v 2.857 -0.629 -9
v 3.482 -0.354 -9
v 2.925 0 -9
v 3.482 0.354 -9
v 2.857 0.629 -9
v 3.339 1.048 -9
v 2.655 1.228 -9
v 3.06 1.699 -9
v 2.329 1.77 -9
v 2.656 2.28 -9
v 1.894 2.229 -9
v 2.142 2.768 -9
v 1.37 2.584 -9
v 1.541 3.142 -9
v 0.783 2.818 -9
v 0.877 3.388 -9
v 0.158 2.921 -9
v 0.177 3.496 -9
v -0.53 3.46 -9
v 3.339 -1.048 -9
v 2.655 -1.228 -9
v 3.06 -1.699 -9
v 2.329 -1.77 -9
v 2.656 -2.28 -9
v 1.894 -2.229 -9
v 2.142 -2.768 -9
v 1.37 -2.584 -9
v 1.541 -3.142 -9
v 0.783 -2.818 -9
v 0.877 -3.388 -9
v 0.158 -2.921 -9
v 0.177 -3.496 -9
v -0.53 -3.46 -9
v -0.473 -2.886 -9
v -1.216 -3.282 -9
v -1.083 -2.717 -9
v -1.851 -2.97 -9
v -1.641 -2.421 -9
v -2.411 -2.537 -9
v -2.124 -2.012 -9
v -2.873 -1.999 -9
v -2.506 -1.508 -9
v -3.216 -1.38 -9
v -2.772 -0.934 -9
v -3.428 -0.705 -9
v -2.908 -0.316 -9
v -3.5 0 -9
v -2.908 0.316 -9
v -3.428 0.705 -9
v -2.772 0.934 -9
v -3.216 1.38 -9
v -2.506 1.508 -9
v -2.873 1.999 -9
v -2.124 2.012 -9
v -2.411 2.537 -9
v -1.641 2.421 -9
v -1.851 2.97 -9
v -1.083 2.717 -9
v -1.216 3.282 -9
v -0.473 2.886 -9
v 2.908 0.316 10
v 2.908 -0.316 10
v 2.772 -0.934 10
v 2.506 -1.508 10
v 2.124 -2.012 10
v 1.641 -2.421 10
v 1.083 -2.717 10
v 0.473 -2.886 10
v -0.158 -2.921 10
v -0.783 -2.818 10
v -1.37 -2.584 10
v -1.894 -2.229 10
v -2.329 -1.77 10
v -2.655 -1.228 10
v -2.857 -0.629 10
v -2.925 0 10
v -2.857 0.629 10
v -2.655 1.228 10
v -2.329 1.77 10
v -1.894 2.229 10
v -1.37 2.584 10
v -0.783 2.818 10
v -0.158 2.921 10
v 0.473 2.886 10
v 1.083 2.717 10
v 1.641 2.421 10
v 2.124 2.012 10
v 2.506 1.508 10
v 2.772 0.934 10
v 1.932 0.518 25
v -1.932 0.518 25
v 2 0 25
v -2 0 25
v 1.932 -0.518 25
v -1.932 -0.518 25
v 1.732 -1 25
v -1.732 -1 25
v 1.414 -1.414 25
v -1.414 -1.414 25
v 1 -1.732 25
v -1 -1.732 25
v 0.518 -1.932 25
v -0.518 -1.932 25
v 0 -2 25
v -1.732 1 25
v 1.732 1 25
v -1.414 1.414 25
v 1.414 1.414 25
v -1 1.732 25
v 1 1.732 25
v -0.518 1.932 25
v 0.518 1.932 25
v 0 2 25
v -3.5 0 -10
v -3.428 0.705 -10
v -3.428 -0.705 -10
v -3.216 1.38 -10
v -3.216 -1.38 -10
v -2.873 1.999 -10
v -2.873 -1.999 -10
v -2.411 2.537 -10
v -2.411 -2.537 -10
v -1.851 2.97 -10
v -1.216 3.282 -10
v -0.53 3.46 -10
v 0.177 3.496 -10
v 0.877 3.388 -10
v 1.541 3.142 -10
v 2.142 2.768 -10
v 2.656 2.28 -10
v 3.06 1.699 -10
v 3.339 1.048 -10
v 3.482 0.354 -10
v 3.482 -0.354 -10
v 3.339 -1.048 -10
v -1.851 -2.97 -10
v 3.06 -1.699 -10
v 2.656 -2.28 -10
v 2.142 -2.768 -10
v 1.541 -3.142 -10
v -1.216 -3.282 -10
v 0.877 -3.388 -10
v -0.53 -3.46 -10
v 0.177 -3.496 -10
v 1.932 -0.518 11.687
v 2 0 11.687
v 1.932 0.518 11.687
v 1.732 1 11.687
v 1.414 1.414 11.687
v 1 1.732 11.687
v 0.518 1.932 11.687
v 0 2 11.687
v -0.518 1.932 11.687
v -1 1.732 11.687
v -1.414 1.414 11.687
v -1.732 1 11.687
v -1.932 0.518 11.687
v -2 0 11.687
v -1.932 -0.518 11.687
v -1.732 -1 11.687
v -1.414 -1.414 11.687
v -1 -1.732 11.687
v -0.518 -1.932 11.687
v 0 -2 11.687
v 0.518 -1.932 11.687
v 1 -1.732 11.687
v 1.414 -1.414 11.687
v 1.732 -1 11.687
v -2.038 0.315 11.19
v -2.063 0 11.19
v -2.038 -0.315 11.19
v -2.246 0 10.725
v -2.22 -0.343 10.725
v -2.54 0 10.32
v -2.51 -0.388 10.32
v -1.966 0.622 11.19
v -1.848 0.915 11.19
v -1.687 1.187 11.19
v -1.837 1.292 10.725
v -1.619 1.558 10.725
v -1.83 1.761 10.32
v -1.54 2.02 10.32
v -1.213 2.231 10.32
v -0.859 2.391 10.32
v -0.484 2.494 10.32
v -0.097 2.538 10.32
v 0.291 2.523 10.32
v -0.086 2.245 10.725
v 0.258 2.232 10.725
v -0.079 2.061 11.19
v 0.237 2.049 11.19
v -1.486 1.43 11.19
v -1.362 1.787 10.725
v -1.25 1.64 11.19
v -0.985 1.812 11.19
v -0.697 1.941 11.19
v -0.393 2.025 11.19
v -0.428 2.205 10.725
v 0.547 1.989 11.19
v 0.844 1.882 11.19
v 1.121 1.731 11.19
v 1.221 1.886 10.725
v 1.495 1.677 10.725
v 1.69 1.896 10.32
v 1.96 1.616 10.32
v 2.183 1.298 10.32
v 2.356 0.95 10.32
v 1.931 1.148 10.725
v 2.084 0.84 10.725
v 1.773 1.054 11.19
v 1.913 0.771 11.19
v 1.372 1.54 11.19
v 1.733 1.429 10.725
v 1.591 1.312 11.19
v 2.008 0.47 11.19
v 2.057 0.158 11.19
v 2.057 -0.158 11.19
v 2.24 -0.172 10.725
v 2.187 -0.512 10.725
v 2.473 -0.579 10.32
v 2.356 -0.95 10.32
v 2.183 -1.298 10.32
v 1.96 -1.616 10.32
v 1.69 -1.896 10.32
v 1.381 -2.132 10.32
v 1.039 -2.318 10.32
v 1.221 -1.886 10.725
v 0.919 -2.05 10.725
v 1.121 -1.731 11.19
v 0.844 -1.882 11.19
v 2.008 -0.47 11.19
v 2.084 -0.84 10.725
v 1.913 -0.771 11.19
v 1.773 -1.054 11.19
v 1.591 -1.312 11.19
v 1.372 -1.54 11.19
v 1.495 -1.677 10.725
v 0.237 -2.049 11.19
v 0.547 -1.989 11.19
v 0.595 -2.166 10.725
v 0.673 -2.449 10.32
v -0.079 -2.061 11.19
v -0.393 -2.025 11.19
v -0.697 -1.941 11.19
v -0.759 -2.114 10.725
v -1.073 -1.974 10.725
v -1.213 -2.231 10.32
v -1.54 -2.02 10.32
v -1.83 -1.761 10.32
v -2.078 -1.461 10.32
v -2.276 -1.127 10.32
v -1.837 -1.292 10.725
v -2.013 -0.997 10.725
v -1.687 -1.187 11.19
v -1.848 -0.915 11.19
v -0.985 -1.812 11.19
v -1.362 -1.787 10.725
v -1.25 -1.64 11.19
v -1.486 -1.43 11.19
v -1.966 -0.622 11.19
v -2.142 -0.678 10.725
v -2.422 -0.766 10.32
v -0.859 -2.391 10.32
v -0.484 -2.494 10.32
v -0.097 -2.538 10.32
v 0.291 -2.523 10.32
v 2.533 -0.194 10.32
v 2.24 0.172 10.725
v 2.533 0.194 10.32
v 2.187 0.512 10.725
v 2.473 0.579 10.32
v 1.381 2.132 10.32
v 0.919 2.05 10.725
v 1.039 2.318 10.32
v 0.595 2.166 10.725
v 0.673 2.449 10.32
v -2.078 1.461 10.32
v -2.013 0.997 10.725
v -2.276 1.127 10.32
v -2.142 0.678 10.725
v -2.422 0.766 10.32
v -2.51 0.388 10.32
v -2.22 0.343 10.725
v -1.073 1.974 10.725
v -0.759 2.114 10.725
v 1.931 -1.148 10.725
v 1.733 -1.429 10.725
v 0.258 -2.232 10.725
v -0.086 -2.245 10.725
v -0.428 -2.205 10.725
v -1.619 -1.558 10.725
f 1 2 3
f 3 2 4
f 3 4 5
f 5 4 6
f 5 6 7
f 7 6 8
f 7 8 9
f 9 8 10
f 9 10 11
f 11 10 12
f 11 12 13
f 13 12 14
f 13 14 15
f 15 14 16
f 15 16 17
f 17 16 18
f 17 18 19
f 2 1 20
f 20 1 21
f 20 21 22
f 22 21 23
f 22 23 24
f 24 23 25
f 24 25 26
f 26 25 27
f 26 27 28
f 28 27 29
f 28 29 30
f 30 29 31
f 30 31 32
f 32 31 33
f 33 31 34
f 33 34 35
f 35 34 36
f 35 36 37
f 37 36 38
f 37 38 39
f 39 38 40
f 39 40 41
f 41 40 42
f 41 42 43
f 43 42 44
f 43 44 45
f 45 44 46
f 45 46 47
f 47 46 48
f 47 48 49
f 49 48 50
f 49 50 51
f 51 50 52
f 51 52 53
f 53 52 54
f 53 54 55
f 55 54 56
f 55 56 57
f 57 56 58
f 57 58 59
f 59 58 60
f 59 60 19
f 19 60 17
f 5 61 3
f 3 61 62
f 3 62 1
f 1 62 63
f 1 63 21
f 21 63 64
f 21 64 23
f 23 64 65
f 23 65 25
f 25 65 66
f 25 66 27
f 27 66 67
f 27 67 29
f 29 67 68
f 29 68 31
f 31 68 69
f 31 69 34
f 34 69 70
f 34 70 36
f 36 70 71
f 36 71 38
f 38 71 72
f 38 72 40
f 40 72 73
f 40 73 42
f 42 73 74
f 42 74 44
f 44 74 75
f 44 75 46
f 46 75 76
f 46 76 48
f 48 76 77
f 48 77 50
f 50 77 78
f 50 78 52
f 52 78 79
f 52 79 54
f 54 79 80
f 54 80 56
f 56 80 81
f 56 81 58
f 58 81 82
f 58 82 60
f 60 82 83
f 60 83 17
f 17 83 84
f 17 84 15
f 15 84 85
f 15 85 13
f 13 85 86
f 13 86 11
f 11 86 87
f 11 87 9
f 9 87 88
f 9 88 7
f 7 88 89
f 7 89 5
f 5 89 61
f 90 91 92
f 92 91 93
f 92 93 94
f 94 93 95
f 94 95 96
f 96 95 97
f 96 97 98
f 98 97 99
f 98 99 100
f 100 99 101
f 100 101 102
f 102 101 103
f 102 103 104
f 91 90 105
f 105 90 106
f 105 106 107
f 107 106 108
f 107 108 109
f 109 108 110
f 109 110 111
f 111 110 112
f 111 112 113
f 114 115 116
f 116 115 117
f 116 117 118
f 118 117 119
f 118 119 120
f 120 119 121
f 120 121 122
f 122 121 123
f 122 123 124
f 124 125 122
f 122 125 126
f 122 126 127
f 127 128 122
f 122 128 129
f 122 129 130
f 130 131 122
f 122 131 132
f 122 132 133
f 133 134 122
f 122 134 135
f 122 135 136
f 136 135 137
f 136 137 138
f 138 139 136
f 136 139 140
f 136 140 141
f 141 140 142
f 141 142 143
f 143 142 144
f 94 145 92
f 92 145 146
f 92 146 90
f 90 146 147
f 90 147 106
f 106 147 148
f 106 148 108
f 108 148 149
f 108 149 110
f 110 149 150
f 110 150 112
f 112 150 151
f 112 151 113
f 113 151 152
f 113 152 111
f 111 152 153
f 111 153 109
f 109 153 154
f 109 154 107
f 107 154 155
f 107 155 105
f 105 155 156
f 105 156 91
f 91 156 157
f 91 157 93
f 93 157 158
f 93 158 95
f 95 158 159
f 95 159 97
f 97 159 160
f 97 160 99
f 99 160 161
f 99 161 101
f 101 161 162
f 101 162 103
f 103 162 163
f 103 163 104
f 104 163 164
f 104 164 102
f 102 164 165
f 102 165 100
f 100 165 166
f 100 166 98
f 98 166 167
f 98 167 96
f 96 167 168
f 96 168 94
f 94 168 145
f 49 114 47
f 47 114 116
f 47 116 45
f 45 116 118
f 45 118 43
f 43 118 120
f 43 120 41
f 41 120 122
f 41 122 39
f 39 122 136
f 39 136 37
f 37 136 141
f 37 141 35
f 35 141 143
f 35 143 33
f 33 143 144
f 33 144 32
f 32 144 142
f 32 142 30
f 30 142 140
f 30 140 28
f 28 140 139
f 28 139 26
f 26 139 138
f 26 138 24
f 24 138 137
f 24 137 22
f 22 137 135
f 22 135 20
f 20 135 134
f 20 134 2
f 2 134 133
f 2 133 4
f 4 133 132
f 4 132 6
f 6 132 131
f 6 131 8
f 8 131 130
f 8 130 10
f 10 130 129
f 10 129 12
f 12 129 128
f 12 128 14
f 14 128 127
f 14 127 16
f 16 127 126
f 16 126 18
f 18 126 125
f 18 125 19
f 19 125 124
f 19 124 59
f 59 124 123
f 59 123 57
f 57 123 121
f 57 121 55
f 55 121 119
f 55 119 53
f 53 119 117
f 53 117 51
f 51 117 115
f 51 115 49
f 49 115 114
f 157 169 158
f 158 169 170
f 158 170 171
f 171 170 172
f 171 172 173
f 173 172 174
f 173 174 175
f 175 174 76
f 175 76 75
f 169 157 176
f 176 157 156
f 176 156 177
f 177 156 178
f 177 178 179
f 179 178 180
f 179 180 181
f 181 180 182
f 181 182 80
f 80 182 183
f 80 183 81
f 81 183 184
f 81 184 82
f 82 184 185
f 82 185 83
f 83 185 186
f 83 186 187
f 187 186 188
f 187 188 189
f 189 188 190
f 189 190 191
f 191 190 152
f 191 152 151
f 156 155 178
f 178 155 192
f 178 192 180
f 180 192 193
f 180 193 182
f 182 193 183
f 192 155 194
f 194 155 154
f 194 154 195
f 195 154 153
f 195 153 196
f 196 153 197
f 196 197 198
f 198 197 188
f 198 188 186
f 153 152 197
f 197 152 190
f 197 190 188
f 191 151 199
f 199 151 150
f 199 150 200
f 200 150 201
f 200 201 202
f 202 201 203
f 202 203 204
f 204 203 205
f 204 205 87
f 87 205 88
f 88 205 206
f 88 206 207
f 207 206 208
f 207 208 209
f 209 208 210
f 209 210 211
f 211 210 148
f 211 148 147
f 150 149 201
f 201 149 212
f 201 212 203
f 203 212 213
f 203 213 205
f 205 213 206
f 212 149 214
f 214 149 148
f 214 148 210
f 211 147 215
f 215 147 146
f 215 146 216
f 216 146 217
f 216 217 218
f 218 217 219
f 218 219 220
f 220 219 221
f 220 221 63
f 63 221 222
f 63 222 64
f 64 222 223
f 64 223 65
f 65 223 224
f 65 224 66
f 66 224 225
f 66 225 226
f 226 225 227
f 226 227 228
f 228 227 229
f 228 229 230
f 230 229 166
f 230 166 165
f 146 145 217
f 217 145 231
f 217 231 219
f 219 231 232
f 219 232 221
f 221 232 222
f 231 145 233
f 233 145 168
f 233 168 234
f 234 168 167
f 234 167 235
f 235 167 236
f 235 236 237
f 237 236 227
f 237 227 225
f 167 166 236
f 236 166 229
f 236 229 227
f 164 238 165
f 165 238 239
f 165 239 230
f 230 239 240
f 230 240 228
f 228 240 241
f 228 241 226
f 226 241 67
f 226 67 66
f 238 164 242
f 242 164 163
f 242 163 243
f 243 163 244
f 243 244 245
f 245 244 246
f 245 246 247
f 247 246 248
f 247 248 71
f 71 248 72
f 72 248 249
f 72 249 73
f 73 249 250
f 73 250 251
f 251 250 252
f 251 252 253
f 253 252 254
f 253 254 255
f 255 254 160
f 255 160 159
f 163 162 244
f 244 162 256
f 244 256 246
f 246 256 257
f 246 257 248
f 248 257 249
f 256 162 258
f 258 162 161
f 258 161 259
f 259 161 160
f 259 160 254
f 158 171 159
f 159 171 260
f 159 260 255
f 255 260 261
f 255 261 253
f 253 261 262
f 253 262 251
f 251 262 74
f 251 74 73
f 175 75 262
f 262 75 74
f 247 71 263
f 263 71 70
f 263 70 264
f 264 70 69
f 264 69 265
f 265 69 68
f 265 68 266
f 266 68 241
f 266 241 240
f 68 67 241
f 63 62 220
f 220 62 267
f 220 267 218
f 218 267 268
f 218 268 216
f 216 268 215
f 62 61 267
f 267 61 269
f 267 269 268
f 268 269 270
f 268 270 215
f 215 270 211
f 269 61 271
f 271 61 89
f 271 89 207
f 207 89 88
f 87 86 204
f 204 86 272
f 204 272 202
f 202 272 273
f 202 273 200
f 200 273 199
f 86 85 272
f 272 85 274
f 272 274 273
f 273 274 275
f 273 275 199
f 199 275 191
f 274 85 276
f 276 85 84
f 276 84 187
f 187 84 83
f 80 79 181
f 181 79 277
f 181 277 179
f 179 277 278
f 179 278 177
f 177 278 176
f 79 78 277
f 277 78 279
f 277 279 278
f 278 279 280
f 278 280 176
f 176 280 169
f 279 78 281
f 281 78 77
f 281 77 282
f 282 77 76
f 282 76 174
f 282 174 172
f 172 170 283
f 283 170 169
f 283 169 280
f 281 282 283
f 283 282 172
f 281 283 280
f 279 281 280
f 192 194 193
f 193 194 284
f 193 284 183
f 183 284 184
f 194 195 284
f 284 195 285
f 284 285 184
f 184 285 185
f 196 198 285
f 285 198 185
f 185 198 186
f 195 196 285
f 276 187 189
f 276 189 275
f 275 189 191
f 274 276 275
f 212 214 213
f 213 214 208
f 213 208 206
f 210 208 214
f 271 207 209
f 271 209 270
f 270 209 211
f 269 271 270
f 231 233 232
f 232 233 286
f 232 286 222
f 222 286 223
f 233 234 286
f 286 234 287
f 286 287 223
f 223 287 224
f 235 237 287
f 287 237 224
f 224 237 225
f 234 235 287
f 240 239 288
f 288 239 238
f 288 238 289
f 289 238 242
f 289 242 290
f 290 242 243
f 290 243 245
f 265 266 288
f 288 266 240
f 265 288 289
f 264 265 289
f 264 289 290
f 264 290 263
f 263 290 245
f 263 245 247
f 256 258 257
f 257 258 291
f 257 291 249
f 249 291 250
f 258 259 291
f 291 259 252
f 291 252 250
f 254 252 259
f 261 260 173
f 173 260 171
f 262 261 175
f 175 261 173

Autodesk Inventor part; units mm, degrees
ref_plane "YZ Plane" through (0, 0, 0) normal (1, 0, 0) x (0, 1, 0)
ref_plane "XZ Plane" through (0, 0, 0) normal (0, 1, 0) x (-1, 0, 0)
ref_plane "XY Plane" through (0, 0, 0) normal (0, 0, 1) x (1, 0, 0)
sketch "Sketch1" plane through (0, 0, 0) normal (0, 0, 1) x (1, 0, 0)
  point P0 (0, 0)
sketch "Sketch2" plane through (0, 0, 0) normal (0, 0, 1) x (1, 0, 0)
  circle A0 centre (0, 0) radius 3
  dimension "d0" = 6
extrude "Extrusion1" add sketch "Sketch2" along normal blind 10
sketch "Sketch3" plane through (0, 0, 10) normal (0, 0, 1) x (1, 0, 0)
  circle A0 centre (0, 0) radius 2
  dimension "d3" = 4
extrude "Extrusion2" add sketch "Sketch3" along normal blind 15
sketch "Sketch4" plane through (0, 0, 0) normal (0, 0, -1) x (-1, 0, 0)
  circle A0 centre (0, 0) radius 3 projected
extrude "Extrusion3" add sketch "Sketch4" along normal blind 10
sketch "Sketch5" plane through (0, 0, -10) normal (0, 0, -1) x (-1, 0, 0)
  circle A0 centre (0, 0) radius 2 projected
  circle A1 centre (0, 0) radius 3.5
  dimension "d8" = 7
extrude "Extrusion4" add sketch "Sketch5" against normal blind 1
sketch "Sketch6" plane through (0, 0, -9) normal (0, 0, 1) x (1, 0, 0)
  point P0 (0, 0)
sketch "Sketch7" plane through (0, 0, 10) normal (0, 0, 1) x (1, 0, 0)
  circle A0 centre (0, 0) radius 3
  circle A1 centre (0, 0) radius 2.925
  dimension "d11" = 5.85
extrude "Extrusion5" cut sketch "Sketch7" against normal up to surface (19 mm away)
fillet "Fillet1" radius 2 1 edges at (-2, 0, 10)
properties part number "Eje"
